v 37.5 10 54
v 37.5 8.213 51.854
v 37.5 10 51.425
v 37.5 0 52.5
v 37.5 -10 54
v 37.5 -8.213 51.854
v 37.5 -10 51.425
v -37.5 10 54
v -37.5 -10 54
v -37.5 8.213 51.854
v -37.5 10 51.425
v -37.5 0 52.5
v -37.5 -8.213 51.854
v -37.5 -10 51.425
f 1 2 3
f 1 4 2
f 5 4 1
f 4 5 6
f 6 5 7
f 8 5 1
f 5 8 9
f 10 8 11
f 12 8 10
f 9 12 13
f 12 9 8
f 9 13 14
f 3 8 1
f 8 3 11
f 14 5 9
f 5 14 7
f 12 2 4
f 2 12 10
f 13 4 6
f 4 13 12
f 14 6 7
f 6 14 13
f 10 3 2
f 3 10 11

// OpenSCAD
    difference() {
        
        
        union() {
            // Montageplaat
            translate([-75/2, -20/2, 50])
                cube([75, 20, 4]);



        }    
            translate([0, 0, 0])
            rotate([0, 90, 0]) 
                cylinder(h=1000, d=105, center=true, $fn=40);


        

    }
